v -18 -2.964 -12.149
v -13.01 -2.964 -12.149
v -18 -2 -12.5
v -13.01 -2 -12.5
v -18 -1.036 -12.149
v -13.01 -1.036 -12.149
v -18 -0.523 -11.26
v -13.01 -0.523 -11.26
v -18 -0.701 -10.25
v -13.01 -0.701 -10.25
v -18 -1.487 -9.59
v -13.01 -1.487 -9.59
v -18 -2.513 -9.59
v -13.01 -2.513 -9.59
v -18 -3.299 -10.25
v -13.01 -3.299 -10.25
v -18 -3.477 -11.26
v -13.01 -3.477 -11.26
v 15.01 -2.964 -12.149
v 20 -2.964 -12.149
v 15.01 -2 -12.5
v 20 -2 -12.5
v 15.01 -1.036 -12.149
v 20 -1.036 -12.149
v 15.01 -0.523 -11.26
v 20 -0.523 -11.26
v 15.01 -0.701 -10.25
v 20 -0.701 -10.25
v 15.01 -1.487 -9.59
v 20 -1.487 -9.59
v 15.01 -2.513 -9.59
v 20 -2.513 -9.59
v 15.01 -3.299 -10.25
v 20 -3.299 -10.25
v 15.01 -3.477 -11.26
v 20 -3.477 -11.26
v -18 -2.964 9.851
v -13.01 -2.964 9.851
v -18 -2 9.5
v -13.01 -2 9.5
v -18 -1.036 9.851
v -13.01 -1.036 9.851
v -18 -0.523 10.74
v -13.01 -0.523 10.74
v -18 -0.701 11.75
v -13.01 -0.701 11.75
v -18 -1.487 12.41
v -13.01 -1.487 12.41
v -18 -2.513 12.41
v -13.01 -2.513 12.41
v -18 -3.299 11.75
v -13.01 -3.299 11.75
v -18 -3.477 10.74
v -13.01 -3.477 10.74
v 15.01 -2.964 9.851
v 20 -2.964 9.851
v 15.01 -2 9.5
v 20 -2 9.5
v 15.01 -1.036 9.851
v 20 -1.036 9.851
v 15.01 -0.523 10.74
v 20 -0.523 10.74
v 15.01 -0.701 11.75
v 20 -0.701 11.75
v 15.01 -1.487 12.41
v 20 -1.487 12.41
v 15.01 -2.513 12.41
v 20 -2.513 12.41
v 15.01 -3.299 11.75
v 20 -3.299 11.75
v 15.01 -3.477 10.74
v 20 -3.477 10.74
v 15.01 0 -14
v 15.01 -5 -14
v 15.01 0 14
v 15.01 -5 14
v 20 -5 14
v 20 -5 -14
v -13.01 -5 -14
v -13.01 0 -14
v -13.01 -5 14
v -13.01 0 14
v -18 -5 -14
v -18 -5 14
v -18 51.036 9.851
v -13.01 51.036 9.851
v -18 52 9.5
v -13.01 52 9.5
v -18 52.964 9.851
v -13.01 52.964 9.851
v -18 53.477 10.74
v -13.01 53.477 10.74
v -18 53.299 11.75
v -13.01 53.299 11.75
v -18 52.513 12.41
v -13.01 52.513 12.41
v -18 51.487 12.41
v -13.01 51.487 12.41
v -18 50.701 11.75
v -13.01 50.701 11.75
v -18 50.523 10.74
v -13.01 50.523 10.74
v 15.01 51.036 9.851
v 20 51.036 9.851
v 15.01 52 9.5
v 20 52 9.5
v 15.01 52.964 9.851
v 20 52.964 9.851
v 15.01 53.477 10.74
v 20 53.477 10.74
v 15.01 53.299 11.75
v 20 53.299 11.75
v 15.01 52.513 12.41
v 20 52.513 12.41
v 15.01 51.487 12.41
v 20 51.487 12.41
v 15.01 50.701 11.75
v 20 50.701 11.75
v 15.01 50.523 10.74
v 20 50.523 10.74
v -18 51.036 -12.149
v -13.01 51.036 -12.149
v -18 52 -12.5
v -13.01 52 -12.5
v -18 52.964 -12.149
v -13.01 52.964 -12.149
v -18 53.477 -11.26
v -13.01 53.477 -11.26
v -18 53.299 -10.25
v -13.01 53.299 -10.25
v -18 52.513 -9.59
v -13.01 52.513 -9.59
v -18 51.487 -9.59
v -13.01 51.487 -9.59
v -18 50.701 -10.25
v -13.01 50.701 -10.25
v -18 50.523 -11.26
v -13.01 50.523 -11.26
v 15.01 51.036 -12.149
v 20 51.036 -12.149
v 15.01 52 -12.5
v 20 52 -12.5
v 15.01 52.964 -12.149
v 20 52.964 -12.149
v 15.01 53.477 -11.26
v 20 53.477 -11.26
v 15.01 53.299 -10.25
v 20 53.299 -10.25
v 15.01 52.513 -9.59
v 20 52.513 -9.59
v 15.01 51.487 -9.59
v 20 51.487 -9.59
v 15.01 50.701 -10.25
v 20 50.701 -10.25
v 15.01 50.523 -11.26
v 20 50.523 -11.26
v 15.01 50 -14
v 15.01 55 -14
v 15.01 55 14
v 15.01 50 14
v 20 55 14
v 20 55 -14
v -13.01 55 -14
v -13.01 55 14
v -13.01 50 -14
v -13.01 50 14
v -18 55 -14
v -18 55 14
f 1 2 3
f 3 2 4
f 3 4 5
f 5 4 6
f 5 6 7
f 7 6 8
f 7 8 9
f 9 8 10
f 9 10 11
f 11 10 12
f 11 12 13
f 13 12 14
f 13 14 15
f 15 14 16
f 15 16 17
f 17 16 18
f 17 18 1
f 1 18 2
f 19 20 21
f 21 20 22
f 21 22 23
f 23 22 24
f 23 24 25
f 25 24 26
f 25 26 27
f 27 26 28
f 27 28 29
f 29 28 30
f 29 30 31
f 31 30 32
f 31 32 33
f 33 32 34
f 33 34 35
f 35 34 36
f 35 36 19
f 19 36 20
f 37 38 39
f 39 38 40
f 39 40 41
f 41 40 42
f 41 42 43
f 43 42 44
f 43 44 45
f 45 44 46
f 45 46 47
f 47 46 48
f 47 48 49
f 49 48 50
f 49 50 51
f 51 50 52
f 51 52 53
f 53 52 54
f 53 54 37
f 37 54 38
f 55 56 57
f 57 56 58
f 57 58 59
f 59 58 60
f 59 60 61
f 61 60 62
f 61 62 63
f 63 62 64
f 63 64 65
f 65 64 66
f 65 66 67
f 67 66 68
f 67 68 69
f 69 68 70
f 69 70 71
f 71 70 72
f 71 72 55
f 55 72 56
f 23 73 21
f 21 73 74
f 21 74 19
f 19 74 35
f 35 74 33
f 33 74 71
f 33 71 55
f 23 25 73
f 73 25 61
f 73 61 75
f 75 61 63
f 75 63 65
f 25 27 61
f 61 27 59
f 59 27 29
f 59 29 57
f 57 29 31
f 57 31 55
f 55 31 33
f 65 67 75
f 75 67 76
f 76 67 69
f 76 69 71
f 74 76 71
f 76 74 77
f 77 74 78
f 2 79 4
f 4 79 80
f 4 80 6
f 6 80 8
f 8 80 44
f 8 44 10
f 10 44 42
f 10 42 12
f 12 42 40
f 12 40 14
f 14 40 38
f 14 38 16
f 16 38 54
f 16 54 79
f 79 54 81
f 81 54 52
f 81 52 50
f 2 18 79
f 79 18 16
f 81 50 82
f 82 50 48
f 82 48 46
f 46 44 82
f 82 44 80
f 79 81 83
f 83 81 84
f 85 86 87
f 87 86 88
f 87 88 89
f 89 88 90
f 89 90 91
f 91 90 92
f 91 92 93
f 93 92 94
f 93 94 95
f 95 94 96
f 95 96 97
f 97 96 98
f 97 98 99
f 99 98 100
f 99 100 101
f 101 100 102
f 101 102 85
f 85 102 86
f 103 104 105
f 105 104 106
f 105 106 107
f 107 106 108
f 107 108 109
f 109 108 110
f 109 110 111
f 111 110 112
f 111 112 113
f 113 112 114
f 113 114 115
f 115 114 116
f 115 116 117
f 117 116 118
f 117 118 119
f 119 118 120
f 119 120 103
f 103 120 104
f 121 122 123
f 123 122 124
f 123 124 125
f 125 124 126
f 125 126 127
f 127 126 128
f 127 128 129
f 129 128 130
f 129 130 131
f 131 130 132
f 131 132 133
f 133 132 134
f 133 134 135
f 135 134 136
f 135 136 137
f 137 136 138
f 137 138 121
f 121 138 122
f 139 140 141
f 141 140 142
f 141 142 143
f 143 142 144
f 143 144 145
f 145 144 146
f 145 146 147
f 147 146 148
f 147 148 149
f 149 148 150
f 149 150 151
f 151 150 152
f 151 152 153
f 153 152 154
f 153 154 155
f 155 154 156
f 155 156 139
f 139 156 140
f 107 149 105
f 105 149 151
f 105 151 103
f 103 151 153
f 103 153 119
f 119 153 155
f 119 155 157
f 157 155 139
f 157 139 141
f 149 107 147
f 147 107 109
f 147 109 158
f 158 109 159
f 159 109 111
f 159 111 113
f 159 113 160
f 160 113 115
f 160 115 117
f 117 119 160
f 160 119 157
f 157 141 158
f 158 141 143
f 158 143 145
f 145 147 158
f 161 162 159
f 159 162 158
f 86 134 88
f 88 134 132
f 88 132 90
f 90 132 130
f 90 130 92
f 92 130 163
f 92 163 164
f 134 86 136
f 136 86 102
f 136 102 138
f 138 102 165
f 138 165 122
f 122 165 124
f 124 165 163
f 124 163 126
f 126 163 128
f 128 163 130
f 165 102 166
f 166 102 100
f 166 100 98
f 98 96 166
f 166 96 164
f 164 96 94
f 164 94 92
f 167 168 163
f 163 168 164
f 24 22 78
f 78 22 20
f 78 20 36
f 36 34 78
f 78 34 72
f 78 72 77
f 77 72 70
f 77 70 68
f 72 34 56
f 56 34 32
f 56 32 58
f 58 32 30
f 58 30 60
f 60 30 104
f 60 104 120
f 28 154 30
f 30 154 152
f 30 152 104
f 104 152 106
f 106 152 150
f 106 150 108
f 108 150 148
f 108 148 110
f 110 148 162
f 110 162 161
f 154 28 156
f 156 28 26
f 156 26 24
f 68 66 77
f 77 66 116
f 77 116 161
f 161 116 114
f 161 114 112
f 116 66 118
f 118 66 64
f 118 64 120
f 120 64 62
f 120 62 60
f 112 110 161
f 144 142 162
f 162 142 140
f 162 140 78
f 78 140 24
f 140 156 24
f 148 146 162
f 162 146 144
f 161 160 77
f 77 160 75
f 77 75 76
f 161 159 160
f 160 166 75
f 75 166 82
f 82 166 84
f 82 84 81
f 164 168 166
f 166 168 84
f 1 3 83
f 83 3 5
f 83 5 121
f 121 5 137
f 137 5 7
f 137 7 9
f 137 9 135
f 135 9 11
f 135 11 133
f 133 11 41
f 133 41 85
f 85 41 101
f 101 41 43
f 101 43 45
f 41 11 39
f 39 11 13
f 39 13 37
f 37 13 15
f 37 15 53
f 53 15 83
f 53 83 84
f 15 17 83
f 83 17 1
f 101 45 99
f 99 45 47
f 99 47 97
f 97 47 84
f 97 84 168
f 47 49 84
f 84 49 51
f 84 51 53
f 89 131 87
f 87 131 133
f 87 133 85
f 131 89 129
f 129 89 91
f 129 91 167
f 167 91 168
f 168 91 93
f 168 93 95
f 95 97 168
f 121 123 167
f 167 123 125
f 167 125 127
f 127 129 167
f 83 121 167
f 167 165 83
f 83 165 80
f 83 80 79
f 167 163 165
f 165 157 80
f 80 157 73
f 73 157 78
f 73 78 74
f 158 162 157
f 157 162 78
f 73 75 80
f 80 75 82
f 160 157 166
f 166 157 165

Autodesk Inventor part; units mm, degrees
ref_plane "YZ Plane" through (0, 0, 0) normal (1, 0, 0) x (0, 1, 0)
ref_plane "XZ Plane" through (0, 0, 0) normal (0, 1, 0) x (-1, 0, 0)
ref_plane "XY Plane" through (0, 0, 0) normal (0, 0, 1) x (1, 0, 0)
sketch "스케치1" plane through (0, 0, 0) normal (0, 1, 0) x (-1, 0, 0)
  line L0 (18, -14) -> (-20, -14)
  line L1 (-20, -14) -> (-20, 14)
  line L2 (-20, 14) -> (18, 14)
  line L3 (18, 14) -> (18, -14)
  point P0 (0, 0)
  dimension "d0" = 28
  dimension "d1" = 14
  dimension "d2" = 38
  dimension "d3" = 18
extrude "돌출1" add sketch "스케치1" along normal blind 50
sketch "스케치2" plane through (0, 50, 0) normal (0, 1, 0) x (1, 0, 0)
  line L0 (20, 14) -> (-18, 14) projected
  line L1 (-18, -14) -> (20, -14) projected
  line L2 (-18, 14) -> (-13.01, 14)
  line L3 (-13.01, 14) -> (-13.01, -14)
  line L4 (-13.01, -14) -> (-18, -14)
  line L5 (-18, -14) -> (-18, 14)
  line L6 (20, -14) -> (15.01, -14)
  line L7 (15.01, -14) -> (15.01, 14)
  line L8 (15.01, 14) -> (20, 14)
  line L9 (20, 14) -> (20, -14)
  point P0 (0, 0)
  dimension "d6" = 4.99
  dimension "d7" = 4.99
extrude "돌출2" add sketch "스케치2" along normal blind 5 contours L9 L1 L7 L0 | L3 L1 L5 L0
sketch "스케치4" plane through (20, 0, 14) normal (1, 0, 0) x (0, 0, -1)
  circle A0 centre (3, 52) radius 1.5
  circle A1 centre (25, 52) radius 1.5
  line L0 (0, 55) -> (28, 55) projected
  line L1 (28, 0) -> (28, 55) projected
  line L2 (0, 0) -> (0, 55) projected
  point P0 (14, 0)
  dimension "d24" = 3
  dimension "d25" = 3
  dimension "d26" = 3
  dimension "d27" = 3
  dimension "d28" = 3
  dimension "d29" = 3
extrude "돌출4" cut sketch "스케치4" against normal blind 80
sketch "스케치5" plane through (0, 0, 0) normal (0, -1, 0) x (1, 0, 0)
  line L0 (20, -14) -> (20, 14) projected
  line L1 (-18, -14) -> (20, -14) projected
  line L2 (20, 14) -> (15.01, 14)
  line L3 (15.01, 14) -> (15.01, -14)
  line L4 (15.01, -14) -> (20, -14)
  line L5 (20, -14) -> (20, 14)
  line L6 (-18, 14) -> (-13.01, 14)
  line L7 (-13.01, 14) -> (-13.01, -14)
  line L8 (-13.01, -14) -> (-18, -14)
  line L9 (-18, -14) -> (-18, 14)
  point P0 (0, 0)
  dimension "d32" = 4.99
  dimension "d33" = 4.99
extrude "돌출5" add sketch "스케치5" along normal blind 5
sketch "스케치6" plane through (20, 55, 14) normal (1, 0, 0) x (0, 0, -1)
  circle A0 centre (25, -57) radius 1.5
  circle A1 centre (3, -57) radius 1.5
  line L0 (28, -60) -> (0, -60) projected
  line L1 (28, 0) -> (28, -60) projected
  line L2 (0, 0) -> (0, -60) projected
  point P0 (14, -55)
  dimension "d36" = 3
  dimension "d37" = 3
  dimension "d38" = 3
  dimension "d39" = 3
  dimension "d40" = 3
  dimension "d41" = 3
extrude "돌출6" cut sketch "스케치6" against normal blind 80
properties part number "upperarm"
